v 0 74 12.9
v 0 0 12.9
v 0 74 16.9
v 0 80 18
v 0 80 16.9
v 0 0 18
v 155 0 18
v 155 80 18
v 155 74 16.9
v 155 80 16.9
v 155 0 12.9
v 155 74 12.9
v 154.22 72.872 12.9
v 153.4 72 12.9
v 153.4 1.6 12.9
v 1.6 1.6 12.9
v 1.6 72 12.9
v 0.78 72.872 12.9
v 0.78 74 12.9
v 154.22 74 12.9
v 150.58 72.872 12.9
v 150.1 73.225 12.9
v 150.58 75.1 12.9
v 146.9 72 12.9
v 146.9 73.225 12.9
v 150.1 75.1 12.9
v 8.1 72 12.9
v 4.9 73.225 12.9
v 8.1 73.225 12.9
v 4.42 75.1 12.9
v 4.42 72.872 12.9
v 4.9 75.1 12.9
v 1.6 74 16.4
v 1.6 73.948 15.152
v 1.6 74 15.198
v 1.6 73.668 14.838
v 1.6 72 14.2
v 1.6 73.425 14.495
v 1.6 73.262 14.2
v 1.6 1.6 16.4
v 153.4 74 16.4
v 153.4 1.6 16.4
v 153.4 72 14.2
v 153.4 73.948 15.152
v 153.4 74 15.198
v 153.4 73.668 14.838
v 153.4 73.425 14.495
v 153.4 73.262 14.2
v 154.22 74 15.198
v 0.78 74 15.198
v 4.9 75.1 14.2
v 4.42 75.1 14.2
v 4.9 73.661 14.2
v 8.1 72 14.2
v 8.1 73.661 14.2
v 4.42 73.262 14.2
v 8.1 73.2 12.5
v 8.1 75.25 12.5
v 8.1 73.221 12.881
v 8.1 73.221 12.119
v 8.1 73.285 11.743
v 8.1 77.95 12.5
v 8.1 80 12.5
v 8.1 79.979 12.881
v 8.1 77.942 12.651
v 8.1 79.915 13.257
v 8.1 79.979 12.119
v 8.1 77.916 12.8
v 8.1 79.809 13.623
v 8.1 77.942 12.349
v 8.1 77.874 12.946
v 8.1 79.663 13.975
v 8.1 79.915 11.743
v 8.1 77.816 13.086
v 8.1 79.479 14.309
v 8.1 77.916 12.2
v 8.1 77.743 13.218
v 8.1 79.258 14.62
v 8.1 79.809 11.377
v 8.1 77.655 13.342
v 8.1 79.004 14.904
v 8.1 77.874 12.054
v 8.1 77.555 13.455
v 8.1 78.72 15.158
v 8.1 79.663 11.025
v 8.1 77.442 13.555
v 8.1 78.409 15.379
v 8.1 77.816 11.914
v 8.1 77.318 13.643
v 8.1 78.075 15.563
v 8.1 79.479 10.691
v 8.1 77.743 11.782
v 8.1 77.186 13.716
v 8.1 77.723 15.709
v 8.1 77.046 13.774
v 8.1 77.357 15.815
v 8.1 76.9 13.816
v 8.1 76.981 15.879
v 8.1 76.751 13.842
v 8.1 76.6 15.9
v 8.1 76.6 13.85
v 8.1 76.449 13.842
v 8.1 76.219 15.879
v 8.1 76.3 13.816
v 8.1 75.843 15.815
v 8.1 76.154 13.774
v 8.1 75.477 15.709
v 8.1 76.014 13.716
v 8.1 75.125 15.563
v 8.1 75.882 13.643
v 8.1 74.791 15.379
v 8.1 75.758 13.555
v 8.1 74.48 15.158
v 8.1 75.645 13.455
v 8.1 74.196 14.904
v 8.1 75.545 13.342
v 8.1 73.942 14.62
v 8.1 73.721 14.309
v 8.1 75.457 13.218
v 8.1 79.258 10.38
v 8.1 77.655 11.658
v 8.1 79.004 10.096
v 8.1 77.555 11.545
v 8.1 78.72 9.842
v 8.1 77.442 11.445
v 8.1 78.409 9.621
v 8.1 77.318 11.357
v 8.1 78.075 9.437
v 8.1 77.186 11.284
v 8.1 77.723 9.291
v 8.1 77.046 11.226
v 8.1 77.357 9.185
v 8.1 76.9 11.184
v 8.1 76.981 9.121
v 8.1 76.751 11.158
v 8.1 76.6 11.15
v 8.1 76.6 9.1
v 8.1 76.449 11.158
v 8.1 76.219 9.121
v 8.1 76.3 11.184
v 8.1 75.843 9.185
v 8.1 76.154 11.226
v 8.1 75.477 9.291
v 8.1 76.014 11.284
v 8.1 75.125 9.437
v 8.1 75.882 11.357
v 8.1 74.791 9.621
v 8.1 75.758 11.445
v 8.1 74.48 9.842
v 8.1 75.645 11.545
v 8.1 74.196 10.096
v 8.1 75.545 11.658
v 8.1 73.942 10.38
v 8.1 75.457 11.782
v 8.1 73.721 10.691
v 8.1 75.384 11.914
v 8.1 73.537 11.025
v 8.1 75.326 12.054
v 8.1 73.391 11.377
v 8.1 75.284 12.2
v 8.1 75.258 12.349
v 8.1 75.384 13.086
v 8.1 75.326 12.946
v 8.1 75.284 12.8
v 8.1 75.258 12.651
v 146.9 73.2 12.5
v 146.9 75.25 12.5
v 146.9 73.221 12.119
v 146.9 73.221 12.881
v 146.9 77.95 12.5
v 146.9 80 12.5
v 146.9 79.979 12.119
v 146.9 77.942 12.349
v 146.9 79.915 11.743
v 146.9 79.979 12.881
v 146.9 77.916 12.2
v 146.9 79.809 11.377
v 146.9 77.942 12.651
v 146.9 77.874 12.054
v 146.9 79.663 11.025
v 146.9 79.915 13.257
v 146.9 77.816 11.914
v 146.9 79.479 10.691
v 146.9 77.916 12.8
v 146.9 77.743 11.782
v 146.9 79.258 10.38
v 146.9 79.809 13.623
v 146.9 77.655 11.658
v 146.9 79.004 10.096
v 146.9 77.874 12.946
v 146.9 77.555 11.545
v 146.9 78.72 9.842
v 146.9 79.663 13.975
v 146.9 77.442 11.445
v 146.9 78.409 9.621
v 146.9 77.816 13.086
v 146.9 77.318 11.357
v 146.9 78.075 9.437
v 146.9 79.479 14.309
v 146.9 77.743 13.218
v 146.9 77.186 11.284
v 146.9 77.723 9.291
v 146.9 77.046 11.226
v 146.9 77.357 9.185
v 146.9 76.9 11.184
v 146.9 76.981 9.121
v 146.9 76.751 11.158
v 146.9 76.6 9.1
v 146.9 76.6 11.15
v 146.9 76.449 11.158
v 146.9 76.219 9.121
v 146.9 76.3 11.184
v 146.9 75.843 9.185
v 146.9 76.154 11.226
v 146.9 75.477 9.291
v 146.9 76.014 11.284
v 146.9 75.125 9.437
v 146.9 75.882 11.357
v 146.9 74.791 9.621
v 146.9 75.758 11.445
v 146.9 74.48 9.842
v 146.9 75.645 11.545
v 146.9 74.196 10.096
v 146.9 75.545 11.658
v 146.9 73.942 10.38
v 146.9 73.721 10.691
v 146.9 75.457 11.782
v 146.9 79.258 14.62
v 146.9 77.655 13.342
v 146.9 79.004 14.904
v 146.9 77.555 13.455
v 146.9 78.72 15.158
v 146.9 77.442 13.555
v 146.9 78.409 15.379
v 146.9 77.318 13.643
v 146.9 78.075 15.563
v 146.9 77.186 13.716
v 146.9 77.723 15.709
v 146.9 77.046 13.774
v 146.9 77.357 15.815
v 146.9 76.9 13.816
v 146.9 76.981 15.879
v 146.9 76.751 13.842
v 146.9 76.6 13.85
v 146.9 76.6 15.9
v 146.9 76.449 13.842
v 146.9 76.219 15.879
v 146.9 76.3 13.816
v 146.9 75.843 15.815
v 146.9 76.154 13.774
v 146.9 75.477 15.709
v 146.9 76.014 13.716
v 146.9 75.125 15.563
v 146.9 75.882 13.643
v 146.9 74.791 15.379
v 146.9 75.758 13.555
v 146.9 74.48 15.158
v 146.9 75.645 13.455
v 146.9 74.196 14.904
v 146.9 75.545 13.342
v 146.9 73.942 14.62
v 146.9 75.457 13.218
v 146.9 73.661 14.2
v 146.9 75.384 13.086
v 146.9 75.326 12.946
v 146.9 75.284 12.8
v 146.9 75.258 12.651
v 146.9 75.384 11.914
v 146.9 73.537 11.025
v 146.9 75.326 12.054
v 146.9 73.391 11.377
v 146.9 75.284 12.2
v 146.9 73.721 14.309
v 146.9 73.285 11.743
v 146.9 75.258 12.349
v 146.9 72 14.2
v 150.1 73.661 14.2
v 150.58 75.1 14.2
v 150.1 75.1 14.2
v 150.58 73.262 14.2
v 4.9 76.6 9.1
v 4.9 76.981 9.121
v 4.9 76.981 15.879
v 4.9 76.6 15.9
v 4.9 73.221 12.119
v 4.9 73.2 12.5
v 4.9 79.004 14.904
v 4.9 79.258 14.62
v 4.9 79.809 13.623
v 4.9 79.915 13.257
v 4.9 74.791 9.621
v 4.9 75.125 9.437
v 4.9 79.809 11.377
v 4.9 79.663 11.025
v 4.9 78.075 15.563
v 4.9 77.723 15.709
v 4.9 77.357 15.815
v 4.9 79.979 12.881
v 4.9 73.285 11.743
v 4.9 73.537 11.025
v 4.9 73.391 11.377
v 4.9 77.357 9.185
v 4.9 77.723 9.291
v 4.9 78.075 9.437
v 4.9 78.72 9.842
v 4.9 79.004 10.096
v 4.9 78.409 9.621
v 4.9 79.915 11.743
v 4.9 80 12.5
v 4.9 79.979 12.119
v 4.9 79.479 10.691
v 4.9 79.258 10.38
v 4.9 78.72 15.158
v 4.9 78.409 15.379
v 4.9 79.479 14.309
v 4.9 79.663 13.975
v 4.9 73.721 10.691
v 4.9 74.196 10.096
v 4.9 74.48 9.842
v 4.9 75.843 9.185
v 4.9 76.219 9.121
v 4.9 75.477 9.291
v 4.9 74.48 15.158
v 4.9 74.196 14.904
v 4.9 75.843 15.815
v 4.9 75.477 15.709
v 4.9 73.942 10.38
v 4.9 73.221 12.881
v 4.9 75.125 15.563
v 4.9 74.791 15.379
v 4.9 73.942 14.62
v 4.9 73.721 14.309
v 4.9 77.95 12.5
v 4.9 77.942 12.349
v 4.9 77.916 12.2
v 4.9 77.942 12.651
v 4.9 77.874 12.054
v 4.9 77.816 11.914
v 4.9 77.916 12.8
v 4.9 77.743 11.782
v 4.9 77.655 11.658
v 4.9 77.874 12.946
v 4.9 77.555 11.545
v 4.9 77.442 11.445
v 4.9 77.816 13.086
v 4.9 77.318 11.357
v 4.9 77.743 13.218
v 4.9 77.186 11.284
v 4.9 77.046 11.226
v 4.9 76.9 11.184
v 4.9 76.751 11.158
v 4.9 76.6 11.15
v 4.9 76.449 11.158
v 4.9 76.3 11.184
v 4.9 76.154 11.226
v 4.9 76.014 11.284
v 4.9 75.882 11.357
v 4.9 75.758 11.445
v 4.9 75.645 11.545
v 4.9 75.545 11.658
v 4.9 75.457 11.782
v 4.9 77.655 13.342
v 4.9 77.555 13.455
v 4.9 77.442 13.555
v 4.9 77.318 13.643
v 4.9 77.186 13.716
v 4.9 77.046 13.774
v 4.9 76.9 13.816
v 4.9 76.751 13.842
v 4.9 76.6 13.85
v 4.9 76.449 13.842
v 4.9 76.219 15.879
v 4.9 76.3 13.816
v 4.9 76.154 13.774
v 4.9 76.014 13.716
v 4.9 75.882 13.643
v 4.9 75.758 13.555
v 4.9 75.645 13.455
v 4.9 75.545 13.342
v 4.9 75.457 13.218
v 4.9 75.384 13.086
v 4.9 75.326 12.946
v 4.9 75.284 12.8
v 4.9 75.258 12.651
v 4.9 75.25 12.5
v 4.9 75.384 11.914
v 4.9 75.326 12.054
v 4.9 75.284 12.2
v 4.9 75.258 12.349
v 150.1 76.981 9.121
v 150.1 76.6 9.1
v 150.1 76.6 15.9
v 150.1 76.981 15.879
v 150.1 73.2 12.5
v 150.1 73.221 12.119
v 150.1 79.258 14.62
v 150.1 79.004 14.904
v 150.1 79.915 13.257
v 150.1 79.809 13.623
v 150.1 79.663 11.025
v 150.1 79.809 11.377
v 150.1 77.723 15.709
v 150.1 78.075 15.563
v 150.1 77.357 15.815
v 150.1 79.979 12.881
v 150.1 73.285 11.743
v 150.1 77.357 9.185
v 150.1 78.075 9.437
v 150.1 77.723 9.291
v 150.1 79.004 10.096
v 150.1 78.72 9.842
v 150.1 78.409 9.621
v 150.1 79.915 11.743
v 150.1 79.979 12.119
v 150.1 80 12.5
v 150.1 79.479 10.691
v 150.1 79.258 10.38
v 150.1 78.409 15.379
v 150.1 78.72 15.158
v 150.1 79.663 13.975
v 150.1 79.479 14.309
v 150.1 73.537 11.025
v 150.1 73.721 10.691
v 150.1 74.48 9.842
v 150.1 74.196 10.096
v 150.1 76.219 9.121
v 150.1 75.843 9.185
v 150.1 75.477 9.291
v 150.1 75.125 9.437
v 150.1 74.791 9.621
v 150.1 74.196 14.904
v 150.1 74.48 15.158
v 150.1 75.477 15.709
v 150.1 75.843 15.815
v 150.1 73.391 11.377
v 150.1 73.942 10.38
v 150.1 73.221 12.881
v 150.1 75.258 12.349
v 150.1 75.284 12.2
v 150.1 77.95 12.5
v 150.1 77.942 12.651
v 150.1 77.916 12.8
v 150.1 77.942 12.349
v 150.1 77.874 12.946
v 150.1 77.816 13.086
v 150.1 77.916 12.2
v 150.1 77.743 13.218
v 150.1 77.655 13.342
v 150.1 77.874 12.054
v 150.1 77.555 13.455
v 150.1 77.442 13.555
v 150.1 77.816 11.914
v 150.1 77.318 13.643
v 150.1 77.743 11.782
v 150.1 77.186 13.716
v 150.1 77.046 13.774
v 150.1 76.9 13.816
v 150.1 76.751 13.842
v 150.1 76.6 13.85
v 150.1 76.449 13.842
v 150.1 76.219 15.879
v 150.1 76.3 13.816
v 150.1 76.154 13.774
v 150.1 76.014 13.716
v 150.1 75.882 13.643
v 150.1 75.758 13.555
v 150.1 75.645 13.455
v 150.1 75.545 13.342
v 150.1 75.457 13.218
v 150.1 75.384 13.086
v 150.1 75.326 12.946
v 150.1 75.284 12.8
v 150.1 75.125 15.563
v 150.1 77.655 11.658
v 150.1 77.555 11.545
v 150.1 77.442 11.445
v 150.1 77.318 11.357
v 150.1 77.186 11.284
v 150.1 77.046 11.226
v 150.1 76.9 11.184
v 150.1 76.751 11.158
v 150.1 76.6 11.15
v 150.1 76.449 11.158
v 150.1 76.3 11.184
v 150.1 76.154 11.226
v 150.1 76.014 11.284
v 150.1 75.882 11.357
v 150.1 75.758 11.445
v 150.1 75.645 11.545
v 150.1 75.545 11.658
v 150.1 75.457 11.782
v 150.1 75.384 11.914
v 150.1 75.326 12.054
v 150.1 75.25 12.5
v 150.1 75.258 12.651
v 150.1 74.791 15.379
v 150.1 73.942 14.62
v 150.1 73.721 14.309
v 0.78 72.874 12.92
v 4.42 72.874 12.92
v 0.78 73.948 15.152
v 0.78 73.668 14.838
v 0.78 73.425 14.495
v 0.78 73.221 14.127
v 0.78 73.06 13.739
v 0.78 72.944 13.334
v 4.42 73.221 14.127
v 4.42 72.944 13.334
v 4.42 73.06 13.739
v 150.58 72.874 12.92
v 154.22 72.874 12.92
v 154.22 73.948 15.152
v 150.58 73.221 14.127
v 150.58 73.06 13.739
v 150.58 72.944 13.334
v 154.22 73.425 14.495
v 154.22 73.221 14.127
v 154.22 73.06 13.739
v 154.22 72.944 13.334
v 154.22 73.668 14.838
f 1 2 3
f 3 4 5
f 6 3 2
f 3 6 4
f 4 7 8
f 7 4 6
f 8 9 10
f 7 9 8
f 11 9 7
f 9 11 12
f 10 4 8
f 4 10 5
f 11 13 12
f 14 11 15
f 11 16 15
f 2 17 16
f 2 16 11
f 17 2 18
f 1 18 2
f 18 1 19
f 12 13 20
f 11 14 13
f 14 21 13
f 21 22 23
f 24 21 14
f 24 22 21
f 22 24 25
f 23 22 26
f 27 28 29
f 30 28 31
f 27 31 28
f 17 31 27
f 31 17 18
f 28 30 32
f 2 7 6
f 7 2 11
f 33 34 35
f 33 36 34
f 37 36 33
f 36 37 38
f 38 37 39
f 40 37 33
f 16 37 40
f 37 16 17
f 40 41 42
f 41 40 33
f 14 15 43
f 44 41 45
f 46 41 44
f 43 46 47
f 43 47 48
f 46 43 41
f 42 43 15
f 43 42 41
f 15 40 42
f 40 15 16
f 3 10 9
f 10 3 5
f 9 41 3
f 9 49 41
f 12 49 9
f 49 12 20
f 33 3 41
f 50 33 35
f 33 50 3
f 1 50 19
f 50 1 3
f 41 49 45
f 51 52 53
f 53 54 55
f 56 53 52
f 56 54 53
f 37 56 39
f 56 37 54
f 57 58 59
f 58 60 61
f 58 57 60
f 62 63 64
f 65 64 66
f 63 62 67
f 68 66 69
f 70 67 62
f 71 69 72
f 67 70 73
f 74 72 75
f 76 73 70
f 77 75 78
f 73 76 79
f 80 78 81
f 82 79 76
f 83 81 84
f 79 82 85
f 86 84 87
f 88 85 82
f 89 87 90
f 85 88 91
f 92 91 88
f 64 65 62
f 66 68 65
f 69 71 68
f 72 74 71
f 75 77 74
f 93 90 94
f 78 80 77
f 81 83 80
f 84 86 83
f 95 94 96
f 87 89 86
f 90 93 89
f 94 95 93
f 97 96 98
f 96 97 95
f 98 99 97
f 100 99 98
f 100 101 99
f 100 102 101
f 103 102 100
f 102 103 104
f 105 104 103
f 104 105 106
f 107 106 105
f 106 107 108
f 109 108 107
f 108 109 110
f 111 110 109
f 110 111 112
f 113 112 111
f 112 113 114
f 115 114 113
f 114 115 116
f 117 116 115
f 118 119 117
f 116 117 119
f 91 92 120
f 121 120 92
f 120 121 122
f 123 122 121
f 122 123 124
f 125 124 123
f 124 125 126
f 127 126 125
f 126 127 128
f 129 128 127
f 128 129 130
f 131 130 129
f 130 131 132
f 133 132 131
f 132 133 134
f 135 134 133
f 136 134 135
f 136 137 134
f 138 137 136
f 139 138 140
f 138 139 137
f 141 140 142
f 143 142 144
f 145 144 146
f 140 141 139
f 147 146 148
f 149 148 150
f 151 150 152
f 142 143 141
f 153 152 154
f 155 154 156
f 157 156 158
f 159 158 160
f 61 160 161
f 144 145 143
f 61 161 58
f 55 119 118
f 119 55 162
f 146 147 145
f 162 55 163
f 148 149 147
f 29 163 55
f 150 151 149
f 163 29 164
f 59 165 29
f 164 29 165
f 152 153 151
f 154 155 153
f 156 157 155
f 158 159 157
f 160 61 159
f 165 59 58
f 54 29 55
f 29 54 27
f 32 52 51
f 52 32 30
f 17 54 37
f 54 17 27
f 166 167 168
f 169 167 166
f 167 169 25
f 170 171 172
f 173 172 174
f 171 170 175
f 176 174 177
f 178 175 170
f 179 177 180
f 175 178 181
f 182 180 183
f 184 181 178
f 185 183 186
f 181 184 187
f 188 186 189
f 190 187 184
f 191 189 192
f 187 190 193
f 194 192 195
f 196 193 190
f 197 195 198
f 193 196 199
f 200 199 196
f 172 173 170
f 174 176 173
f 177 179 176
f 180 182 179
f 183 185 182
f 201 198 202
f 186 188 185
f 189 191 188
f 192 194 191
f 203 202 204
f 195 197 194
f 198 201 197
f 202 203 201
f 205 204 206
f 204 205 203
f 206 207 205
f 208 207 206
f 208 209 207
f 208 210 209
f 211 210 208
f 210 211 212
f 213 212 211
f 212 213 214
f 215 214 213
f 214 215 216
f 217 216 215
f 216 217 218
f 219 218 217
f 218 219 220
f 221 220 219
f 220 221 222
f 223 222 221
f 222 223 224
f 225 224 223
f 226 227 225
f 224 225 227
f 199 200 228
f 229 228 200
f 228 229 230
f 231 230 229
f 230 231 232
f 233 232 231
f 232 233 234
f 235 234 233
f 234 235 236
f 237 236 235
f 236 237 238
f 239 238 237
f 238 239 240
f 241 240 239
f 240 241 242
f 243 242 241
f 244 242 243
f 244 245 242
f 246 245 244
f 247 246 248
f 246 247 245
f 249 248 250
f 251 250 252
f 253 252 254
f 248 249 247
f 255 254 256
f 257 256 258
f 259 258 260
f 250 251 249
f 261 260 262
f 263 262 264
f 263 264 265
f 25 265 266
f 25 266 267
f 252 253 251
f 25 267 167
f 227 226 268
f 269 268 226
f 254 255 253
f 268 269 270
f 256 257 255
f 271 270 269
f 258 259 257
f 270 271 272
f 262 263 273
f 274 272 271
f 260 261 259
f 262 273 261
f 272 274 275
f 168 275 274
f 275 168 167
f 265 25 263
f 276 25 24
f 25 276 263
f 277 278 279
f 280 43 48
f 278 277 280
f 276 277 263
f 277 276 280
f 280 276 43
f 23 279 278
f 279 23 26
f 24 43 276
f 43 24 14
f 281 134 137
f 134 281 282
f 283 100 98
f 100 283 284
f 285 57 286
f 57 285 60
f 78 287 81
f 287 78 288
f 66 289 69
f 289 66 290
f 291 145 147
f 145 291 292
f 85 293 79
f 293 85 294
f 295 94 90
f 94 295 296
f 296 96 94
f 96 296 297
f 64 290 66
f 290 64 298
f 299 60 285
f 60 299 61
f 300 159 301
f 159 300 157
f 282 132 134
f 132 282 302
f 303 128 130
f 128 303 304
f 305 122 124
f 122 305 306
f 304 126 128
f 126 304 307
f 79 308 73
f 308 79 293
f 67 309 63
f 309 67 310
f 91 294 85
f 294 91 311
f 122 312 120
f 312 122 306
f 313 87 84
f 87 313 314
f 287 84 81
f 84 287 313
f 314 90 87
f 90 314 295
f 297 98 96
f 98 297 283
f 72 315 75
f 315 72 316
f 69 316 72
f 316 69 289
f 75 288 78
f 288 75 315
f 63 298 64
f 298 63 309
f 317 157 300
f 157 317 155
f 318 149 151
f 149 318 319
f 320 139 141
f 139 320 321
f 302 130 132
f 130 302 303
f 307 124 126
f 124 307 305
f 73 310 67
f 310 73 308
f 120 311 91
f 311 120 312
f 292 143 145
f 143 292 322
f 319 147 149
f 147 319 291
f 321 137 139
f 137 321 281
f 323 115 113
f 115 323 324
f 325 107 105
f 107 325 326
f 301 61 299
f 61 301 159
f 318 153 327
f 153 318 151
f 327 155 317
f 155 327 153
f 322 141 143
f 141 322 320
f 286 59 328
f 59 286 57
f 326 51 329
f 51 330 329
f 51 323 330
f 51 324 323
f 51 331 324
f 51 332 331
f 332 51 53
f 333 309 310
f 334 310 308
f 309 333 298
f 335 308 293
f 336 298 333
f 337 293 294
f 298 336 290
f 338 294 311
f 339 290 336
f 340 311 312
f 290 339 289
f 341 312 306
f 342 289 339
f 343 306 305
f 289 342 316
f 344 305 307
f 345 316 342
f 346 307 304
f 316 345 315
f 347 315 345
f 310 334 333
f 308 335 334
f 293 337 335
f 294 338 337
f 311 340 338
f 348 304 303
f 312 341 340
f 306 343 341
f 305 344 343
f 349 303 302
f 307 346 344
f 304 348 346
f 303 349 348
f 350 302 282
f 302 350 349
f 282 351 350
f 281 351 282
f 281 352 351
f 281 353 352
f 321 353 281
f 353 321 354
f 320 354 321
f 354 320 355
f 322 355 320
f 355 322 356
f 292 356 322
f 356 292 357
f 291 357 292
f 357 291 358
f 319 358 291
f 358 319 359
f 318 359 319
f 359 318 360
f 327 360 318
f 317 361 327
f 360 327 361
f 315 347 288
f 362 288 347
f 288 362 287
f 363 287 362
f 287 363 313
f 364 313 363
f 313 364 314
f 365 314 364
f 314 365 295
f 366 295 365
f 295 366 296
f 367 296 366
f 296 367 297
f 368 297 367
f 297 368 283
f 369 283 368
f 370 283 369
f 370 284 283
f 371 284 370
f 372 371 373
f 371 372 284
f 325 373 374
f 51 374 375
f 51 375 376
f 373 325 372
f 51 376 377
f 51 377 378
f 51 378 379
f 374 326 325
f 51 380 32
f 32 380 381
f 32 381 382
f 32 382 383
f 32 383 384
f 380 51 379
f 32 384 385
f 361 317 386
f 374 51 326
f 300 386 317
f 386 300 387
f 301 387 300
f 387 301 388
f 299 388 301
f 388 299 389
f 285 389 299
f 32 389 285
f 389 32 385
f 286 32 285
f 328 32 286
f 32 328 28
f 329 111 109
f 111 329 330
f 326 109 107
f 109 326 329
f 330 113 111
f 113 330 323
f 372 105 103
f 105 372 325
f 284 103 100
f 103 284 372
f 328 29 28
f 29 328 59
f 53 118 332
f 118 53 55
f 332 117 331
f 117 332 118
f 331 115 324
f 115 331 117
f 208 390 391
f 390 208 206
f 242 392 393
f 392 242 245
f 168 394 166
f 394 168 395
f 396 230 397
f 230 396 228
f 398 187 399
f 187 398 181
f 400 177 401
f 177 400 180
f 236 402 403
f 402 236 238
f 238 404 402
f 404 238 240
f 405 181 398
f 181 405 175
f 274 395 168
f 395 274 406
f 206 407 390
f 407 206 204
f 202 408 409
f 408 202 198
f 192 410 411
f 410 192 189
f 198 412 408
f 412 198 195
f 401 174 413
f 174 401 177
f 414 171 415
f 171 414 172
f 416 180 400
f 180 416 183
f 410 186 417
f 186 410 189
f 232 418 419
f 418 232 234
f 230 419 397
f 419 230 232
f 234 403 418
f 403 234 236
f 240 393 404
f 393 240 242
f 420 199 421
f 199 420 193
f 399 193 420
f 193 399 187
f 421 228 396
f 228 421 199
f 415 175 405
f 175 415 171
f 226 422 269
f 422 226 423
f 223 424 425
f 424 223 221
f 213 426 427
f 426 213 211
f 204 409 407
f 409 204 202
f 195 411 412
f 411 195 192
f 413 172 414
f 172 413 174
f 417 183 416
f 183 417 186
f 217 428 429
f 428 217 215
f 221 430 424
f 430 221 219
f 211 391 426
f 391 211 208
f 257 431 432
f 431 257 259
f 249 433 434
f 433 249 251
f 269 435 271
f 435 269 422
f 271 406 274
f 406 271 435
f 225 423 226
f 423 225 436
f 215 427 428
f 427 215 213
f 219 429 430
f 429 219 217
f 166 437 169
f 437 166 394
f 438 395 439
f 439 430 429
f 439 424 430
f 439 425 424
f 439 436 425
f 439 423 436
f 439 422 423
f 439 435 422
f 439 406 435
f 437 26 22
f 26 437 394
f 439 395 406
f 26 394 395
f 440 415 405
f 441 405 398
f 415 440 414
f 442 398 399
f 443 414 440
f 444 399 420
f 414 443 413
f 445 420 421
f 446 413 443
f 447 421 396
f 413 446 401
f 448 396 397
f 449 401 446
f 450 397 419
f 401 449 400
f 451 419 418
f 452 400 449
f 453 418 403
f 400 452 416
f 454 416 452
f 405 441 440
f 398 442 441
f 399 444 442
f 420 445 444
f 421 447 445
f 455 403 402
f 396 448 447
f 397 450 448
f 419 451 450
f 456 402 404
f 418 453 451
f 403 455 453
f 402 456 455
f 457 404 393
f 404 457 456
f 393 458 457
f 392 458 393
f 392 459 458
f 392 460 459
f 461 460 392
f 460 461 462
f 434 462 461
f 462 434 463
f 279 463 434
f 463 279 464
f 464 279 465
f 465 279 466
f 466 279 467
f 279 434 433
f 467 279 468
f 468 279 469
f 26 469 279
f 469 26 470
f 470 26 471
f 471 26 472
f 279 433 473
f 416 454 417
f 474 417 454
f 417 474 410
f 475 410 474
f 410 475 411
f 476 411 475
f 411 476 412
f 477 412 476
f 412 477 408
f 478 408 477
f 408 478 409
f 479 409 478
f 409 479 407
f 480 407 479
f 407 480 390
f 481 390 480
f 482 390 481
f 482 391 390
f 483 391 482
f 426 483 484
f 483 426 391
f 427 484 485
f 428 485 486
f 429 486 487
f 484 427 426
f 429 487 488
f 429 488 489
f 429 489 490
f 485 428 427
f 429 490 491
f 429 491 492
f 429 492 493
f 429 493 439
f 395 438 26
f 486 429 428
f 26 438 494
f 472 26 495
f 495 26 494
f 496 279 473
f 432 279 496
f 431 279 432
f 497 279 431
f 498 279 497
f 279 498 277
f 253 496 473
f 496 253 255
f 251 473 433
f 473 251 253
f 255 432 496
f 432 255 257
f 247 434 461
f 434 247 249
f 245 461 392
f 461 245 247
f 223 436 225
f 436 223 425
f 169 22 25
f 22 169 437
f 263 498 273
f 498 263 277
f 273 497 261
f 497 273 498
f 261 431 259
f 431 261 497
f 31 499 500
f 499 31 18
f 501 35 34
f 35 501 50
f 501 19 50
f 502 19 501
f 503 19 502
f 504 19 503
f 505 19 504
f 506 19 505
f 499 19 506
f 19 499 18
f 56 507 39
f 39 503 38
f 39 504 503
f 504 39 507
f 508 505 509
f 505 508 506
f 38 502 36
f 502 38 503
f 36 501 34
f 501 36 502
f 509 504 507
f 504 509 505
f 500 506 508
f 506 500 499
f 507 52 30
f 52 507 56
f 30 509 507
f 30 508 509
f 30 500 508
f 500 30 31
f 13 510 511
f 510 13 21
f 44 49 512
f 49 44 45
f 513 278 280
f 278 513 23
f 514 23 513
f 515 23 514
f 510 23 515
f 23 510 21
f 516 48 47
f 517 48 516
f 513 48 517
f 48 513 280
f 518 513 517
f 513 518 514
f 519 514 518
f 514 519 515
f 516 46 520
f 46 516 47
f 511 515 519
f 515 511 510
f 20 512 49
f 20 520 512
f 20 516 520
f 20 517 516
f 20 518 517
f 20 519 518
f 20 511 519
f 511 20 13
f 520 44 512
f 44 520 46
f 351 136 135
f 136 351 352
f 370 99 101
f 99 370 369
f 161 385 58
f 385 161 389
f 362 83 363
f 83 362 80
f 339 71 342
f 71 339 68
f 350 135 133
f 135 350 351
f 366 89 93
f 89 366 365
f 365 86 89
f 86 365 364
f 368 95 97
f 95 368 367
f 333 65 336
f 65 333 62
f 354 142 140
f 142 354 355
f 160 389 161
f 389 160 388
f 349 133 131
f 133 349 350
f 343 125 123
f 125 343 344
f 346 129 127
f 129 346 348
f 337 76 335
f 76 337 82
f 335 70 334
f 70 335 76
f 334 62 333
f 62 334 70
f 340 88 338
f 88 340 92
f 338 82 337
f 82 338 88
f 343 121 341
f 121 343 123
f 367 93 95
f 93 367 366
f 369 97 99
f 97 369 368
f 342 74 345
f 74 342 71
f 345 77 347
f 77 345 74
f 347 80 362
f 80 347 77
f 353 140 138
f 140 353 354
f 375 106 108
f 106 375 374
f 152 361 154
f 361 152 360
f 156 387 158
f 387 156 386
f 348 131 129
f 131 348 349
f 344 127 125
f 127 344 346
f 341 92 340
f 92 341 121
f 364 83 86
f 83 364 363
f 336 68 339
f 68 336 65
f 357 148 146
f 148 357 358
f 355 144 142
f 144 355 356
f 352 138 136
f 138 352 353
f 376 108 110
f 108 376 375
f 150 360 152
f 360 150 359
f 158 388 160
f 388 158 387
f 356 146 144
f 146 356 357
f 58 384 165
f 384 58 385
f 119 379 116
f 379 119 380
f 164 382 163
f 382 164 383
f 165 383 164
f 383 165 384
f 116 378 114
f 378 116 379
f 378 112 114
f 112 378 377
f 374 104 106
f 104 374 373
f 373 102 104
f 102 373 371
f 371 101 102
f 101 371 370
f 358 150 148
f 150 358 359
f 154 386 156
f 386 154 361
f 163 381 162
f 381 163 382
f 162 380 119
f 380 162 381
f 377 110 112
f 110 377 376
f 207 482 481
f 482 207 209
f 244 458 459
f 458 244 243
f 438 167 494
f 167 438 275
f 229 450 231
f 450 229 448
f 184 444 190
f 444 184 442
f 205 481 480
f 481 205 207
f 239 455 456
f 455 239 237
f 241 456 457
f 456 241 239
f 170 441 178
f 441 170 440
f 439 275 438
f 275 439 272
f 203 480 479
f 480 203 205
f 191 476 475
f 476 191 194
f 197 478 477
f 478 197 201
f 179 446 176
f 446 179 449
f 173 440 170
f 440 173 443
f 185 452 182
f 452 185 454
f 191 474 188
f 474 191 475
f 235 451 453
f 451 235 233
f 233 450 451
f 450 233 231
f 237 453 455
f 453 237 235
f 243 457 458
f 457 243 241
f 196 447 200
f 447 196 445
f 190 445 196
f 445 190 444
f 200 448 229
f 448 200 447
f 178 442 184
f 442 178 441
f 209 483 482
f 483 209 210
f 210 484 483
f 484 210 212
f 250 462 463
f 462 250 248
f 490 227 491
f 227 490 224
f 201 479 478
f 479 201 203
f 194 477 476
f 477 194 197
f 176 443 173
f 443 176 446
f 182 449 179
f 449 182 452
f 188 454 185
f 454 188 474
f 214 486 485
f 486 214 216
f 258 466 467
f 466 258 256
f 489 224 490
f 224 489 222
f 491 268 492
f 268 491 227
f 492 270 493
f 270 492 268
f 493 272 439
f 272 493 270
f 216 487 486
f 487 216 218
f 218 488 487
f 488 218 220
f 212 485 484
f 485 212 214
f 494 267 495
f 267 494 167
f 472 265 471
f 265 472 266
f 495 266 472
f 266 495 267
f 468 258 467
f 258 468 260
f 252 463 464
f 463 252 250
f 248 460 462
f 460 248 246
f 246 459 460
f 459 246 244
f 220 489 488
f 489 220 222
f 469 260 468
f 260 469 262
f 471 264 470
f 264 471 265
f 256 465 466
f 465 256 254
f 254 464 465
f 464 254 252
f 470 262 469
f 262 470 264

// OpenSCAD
// Native Mecha-Splicer side-pin hinge. CAD ONLY; no metal pin, no verified flex/stop/torque.
// Hinge is fully enclosed in the declared closed XY silhouette.
$fn=56;
W=155.0; D=80.0; wall=1.6; floor=1.6;
HBASE=12.1; HLID=5.1; gap=0.8;
hy=76.6; hz=12.5;
kr=3.4; bore=2.7;

module lid_shell() {
  difference() {
    union() {
      difference() {
        translate([0,0,12.9]) cube([W,D,HLID]);
        translate([wall,wall,12.8]) cube([W-2*wall,D-2*wall,HLID-floor+0.1]);
        // Remove the lower rear wall in swing zone (shell only).
        translate([-0.1,74.0,12.8]) cube([W+0.2,6.1,4.1]);
      }
// Anchor ears join the inner lid barrels back to outer side rails.
      translate([1.0,72.0,12.9]) cube([7.1000000000000005,3.1,1.3]);
      translate([146.9,72.0,12.9]) cube([7.1000000000000005,3.1,1.3]);
// The two lid barrels lie axially beside the base barrels.
      translate([4.9,hy,hz]) rotate([0,90,0]) cylinder(h=3.2,r=3.4);
      translate([146.9,hy,hz]) rotate([0,90,0]) cylinder(h=3.2,r=3.4);
    }
// Relieve lid shell material for both base hinge barrels.
    translate([0.78,hy,hz]) rotate([0,90,0]) cylinder(h=3.64,r=3.75);
    translate([150.58,hy,hz]) rotate([0,90,0]) cylinder(h=3.64,r=3.75);
    translate([4.78,hy,hz]) rotate([0,90,0]) cylinder(h=3.4400000000000004,d=bore);
    translate([146.78,hy,hz]) rotate([0,90,0]) cylinder(h=3.4400000000000004,d=bore);
// Upper LCD requires separate signal AND touch flex routes.
    translate([63.5,D-wall-0.1,12.8]) cube([28,wall+0.2,3.6]);
  }
}
lid_shell();
